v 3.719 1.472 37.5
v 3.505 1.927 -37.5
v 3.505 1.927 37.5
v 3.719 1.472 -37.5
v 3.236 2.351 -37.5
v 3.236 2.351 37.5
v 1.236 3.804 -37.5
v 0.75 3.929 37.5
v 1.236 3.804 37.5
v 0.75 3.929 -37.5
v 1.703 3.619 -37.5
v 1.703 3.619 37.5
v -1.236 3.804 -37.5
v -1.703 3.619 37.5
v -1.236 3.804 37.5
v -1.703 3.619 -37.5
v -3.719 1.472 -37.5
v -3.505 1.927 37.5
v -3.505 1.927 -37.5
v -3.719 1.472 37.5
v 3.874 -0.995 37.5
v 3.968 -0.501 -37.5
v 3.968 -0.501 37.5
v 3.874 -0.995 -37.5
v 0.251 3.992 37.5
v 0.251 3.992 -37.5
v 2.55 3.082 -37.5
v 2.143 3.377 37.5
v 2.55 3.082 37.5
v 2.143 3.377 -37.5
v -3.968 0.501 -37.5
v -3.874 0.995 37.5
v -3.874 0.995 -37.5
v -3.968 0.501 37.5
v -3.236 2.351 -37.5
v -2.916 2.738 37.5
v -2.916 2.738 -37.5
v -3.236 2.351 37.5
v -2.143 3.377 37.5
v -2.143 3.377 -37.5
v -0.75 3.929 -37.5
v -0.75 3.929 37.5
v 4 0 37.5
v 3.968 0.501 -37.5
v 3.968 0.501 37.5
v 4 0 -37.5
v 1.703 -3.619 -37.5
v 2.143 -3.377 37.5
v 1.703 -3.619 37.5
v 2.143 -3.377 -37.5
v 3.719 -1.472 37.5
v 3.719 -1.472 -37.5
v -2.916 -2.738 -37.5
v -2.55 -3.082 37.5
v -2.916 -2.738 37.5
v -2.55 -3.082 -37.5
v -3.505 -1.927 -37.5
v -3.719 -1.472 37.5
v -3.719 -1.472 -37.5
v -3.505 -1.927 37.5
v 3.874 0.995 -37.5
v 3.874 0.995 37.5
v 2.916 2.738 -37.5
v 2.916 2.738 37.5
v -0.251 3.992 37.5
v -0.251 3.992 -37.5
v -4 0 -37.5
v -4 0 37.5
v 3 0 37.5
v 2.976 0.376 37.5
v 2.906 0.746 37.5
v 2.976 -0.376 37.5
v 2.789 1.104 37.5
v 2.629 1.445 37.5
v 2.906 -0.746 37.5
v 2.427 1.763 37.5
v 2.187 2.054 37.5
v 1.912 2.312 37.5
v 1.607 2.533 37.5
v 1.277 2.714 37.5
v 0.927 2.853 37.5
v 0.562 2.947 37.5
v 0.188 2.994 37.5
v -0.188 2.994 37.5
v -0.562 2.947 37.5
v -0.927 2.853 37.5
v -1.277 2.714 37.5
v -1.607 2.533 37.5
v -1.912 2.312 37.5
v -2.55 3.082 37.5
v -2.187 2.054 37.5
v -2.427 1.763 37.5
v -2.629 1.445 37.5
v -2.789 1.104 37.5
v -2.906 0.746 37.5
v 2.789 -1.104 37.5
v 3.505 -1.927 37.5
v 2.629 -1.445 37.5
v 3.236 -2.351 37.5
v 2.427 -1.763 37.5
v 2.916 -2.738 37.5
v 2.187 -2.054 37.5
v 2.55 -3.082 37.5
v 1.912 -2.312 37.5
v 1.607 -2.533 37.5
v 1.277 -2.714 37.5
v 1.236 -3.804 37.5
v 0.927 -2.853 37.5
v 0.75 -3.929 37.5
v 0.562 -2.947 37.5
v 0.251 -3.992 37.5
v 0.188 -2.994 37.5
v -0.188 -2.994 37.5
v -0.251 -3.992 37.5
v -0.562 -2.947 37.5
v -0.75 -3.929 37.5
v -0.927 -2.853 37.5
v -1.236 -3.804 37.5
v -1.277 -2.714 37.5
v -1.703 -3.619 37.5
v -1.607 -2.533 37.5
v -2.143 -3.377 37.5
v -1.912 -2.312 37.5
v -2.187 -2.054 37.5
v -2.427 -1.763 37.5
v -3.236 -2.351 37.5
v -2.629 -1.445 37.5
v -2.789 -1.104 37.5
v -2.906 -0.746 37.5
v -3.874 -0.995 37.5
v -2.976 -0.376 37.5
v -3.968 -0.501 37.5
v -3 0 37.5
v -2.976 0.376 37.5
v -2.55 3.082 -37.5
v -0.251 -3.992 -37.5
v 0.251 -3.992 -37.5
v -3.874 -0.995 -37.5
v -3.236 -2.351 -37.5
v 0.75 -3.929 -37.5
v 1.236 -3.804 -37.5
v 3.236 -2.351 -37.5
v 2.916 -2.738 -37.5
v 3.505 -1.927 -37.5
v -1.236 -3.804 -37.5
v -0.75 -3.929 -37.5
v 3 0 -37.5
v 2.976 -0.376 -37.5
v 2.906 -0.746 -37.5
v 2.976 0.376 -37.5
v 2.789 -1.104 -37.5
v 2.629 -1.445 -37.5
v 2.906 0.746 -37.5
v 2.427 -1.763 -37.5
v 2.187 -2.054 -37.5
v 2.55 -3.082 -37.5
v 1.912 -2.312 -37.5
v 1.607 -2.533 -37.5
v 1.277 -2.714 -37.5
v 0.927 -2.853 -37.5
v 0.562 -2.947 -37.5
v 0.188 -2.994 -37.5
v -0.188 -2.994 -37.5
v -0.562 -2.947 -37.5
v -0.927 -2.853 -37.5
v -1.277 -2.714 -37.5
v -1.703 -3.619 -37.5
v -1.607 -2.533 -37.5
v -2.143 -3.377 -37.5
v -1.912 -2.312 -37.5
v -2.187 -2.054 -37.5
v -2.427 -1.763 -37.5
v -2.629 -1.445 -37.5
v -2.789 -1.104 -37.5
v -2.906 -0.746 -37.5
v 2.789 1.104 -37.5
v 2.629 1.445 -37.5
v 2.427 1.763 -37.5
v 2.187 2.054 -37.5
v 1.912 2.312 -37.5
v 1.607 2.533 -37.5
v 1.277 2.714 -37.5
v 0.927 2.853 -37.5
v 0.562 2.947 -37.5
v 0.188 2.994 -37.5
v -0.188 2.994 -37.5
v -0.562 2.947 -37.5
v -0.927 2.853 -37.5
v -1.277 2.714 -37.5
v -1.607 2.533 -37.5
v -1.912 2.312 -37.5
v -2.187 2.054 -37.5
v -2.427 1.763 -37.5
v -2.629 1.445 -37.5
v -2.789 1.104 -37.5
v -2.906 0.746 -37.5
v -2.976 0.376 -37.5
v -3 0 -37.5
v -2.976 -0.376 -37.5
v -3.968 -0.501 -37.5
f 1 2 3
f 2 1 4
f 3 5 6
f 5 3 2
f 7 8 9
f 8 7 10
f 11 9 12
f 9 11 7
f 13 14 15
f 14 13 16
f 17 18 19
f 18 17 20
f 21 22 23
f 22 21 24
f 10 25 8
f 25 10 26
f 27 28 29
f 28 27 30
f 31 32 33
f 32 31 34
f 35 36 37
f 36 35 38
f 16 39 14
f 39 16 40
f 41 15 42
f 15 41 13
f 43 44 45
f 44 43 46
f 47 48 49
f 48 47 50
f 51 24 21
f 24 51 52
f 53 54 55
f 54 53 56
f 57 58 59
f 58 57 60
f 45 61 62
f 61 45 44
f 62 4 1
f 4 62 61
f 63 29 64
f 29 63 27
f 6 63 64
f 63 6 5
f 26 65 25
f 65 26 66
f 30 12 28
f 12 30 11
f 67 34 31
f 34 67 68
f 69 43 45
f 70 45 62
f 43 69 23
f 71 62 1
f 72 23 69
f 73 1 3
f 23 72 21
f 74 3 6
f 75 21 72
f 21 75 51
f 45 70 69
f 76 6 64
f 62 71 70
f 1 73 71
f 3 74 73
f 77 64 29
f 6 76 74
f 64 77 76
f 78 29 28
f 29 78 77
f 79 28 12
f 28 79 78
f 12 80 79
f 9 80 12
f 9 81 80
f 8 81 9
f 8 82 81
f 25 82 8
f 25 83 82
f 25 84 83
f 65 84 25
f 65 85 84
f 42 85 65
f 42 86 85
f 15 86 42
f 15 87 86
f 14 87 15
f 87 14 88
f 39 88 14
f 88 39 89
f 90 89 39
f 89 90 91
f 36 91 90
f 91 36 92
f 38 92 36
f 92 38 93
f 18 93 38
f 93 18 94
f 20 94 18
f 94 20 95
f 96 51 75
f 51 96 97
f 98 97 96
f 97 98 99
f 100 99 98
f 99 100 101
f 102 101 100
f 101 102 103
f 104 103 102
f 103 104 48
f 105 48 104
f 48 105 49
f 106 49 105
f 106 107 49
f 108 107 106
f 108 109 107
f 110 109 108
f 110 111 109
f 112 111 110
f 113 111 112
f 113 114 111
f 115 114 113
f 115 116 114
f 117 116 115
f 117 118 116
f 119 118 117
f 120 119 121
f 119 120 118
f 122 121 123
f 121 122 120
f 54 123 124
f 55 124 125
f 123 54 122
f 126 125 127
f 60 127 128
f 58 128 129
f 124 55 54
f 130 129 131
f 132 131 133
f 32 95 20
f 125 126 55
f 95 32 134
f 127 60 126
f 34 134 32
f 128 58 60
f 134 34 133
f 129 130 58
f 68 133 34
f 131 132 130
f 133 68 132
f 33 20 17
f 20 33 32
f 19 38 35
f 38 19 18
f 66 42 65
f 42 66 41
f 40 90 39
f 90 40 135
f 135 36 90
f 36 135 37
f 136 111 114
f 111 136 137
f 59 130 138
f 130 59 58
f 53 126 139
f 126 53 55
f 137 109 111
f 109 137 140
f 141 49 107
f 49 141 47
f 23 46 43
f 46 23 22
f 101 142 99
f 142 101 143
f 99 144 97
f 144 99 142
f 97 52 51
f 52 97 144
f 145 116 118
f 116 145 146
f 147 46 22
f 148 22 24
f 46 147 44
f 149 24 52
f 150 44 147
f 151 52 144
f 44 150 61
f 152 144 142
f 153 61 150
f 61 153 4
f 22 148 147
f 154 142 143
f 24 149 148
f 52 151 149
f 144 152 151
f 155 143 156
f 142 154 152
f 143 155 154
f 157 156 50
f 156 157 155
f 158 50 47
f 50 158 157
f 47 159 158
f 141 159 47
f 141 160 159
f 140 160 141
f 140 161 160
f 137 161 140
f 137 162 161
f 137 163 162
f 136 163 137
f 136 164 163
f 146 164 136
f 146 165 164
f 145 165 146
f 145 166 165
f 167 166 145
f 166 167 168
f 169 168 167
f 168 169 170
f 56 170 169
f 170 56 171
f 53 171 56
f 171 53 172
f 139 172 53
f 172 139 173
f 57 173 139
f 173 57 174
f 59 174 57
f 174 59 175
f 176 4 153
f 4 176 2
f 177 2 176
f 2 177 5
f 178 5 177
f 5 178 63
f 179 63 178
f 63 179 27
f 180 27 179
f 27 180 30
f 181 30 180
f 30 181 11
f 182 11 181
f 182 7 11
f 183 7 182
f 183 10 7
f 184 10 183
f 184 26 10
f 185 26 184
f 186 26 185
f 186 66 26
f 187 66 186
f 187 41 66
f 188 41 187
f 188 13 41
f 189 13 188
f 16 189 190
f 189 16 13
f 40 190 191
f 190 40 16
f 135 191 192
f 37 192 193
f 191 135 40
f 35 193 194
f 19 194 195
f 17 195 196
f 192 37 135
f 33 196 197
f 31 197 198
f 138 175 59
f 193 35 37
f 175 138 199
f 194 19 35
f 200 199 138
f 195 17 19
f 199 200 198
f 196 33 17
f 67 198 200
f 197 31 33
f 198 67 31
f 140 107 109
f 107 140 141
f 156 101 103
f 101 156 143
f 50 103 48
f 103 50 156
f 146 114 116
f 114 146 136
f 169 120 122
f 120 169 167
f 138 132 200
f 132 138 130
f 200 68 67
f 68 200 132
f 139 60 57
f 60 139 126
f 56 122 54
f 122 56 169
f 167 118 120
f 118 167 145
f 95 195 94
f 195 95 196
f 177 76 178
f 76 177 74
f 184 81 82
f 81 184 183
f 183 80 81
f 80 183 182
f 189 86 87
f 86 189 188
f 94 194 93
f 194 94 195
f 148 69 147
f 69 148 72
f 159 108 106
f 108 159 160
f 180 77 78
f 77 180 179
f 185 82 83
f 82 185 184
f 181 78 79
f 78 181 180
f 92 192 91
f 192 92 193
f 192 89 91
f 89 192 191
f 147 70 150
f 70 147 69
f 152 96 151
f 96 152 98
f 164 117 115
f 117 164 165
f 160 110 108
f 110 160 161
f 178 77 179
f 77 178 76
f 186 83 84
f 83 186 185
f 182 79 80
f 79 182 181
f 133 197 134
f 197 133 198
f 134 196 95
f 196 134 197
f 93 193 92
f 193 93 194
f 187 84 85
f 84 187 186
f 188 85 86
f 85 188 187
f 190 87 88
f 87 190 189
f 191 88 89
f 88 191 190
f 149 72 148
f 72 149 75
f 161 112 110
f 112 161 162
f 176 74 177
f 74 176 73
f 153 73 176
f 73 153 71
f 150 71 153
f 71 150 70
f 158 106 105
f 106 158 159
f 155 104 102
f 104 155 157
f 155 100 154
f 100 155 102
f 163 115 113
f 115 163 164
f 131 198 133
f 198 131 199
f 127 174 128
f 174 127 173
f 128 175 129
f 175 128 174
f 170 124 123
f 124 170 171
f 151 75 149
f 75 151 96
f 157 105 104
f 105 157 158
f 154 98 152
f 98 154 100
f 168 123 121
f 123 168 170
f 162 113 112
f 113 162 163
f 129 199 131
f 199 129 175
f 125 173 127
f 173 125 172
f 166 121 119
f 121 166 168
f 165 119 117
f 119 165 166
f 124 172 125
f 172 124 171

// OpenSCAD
$fn = 50;


difference() {
	union() {
		translate(v = [0, 0, -37.5000000000]) {
			cylinder(h = 75, r = 4.0000000000);
		}
	}
	union() {
		translate(v = [0, 0, -100.0000000000]) {
			cylinder(h = 200, r = 3);
		}
	}
}
